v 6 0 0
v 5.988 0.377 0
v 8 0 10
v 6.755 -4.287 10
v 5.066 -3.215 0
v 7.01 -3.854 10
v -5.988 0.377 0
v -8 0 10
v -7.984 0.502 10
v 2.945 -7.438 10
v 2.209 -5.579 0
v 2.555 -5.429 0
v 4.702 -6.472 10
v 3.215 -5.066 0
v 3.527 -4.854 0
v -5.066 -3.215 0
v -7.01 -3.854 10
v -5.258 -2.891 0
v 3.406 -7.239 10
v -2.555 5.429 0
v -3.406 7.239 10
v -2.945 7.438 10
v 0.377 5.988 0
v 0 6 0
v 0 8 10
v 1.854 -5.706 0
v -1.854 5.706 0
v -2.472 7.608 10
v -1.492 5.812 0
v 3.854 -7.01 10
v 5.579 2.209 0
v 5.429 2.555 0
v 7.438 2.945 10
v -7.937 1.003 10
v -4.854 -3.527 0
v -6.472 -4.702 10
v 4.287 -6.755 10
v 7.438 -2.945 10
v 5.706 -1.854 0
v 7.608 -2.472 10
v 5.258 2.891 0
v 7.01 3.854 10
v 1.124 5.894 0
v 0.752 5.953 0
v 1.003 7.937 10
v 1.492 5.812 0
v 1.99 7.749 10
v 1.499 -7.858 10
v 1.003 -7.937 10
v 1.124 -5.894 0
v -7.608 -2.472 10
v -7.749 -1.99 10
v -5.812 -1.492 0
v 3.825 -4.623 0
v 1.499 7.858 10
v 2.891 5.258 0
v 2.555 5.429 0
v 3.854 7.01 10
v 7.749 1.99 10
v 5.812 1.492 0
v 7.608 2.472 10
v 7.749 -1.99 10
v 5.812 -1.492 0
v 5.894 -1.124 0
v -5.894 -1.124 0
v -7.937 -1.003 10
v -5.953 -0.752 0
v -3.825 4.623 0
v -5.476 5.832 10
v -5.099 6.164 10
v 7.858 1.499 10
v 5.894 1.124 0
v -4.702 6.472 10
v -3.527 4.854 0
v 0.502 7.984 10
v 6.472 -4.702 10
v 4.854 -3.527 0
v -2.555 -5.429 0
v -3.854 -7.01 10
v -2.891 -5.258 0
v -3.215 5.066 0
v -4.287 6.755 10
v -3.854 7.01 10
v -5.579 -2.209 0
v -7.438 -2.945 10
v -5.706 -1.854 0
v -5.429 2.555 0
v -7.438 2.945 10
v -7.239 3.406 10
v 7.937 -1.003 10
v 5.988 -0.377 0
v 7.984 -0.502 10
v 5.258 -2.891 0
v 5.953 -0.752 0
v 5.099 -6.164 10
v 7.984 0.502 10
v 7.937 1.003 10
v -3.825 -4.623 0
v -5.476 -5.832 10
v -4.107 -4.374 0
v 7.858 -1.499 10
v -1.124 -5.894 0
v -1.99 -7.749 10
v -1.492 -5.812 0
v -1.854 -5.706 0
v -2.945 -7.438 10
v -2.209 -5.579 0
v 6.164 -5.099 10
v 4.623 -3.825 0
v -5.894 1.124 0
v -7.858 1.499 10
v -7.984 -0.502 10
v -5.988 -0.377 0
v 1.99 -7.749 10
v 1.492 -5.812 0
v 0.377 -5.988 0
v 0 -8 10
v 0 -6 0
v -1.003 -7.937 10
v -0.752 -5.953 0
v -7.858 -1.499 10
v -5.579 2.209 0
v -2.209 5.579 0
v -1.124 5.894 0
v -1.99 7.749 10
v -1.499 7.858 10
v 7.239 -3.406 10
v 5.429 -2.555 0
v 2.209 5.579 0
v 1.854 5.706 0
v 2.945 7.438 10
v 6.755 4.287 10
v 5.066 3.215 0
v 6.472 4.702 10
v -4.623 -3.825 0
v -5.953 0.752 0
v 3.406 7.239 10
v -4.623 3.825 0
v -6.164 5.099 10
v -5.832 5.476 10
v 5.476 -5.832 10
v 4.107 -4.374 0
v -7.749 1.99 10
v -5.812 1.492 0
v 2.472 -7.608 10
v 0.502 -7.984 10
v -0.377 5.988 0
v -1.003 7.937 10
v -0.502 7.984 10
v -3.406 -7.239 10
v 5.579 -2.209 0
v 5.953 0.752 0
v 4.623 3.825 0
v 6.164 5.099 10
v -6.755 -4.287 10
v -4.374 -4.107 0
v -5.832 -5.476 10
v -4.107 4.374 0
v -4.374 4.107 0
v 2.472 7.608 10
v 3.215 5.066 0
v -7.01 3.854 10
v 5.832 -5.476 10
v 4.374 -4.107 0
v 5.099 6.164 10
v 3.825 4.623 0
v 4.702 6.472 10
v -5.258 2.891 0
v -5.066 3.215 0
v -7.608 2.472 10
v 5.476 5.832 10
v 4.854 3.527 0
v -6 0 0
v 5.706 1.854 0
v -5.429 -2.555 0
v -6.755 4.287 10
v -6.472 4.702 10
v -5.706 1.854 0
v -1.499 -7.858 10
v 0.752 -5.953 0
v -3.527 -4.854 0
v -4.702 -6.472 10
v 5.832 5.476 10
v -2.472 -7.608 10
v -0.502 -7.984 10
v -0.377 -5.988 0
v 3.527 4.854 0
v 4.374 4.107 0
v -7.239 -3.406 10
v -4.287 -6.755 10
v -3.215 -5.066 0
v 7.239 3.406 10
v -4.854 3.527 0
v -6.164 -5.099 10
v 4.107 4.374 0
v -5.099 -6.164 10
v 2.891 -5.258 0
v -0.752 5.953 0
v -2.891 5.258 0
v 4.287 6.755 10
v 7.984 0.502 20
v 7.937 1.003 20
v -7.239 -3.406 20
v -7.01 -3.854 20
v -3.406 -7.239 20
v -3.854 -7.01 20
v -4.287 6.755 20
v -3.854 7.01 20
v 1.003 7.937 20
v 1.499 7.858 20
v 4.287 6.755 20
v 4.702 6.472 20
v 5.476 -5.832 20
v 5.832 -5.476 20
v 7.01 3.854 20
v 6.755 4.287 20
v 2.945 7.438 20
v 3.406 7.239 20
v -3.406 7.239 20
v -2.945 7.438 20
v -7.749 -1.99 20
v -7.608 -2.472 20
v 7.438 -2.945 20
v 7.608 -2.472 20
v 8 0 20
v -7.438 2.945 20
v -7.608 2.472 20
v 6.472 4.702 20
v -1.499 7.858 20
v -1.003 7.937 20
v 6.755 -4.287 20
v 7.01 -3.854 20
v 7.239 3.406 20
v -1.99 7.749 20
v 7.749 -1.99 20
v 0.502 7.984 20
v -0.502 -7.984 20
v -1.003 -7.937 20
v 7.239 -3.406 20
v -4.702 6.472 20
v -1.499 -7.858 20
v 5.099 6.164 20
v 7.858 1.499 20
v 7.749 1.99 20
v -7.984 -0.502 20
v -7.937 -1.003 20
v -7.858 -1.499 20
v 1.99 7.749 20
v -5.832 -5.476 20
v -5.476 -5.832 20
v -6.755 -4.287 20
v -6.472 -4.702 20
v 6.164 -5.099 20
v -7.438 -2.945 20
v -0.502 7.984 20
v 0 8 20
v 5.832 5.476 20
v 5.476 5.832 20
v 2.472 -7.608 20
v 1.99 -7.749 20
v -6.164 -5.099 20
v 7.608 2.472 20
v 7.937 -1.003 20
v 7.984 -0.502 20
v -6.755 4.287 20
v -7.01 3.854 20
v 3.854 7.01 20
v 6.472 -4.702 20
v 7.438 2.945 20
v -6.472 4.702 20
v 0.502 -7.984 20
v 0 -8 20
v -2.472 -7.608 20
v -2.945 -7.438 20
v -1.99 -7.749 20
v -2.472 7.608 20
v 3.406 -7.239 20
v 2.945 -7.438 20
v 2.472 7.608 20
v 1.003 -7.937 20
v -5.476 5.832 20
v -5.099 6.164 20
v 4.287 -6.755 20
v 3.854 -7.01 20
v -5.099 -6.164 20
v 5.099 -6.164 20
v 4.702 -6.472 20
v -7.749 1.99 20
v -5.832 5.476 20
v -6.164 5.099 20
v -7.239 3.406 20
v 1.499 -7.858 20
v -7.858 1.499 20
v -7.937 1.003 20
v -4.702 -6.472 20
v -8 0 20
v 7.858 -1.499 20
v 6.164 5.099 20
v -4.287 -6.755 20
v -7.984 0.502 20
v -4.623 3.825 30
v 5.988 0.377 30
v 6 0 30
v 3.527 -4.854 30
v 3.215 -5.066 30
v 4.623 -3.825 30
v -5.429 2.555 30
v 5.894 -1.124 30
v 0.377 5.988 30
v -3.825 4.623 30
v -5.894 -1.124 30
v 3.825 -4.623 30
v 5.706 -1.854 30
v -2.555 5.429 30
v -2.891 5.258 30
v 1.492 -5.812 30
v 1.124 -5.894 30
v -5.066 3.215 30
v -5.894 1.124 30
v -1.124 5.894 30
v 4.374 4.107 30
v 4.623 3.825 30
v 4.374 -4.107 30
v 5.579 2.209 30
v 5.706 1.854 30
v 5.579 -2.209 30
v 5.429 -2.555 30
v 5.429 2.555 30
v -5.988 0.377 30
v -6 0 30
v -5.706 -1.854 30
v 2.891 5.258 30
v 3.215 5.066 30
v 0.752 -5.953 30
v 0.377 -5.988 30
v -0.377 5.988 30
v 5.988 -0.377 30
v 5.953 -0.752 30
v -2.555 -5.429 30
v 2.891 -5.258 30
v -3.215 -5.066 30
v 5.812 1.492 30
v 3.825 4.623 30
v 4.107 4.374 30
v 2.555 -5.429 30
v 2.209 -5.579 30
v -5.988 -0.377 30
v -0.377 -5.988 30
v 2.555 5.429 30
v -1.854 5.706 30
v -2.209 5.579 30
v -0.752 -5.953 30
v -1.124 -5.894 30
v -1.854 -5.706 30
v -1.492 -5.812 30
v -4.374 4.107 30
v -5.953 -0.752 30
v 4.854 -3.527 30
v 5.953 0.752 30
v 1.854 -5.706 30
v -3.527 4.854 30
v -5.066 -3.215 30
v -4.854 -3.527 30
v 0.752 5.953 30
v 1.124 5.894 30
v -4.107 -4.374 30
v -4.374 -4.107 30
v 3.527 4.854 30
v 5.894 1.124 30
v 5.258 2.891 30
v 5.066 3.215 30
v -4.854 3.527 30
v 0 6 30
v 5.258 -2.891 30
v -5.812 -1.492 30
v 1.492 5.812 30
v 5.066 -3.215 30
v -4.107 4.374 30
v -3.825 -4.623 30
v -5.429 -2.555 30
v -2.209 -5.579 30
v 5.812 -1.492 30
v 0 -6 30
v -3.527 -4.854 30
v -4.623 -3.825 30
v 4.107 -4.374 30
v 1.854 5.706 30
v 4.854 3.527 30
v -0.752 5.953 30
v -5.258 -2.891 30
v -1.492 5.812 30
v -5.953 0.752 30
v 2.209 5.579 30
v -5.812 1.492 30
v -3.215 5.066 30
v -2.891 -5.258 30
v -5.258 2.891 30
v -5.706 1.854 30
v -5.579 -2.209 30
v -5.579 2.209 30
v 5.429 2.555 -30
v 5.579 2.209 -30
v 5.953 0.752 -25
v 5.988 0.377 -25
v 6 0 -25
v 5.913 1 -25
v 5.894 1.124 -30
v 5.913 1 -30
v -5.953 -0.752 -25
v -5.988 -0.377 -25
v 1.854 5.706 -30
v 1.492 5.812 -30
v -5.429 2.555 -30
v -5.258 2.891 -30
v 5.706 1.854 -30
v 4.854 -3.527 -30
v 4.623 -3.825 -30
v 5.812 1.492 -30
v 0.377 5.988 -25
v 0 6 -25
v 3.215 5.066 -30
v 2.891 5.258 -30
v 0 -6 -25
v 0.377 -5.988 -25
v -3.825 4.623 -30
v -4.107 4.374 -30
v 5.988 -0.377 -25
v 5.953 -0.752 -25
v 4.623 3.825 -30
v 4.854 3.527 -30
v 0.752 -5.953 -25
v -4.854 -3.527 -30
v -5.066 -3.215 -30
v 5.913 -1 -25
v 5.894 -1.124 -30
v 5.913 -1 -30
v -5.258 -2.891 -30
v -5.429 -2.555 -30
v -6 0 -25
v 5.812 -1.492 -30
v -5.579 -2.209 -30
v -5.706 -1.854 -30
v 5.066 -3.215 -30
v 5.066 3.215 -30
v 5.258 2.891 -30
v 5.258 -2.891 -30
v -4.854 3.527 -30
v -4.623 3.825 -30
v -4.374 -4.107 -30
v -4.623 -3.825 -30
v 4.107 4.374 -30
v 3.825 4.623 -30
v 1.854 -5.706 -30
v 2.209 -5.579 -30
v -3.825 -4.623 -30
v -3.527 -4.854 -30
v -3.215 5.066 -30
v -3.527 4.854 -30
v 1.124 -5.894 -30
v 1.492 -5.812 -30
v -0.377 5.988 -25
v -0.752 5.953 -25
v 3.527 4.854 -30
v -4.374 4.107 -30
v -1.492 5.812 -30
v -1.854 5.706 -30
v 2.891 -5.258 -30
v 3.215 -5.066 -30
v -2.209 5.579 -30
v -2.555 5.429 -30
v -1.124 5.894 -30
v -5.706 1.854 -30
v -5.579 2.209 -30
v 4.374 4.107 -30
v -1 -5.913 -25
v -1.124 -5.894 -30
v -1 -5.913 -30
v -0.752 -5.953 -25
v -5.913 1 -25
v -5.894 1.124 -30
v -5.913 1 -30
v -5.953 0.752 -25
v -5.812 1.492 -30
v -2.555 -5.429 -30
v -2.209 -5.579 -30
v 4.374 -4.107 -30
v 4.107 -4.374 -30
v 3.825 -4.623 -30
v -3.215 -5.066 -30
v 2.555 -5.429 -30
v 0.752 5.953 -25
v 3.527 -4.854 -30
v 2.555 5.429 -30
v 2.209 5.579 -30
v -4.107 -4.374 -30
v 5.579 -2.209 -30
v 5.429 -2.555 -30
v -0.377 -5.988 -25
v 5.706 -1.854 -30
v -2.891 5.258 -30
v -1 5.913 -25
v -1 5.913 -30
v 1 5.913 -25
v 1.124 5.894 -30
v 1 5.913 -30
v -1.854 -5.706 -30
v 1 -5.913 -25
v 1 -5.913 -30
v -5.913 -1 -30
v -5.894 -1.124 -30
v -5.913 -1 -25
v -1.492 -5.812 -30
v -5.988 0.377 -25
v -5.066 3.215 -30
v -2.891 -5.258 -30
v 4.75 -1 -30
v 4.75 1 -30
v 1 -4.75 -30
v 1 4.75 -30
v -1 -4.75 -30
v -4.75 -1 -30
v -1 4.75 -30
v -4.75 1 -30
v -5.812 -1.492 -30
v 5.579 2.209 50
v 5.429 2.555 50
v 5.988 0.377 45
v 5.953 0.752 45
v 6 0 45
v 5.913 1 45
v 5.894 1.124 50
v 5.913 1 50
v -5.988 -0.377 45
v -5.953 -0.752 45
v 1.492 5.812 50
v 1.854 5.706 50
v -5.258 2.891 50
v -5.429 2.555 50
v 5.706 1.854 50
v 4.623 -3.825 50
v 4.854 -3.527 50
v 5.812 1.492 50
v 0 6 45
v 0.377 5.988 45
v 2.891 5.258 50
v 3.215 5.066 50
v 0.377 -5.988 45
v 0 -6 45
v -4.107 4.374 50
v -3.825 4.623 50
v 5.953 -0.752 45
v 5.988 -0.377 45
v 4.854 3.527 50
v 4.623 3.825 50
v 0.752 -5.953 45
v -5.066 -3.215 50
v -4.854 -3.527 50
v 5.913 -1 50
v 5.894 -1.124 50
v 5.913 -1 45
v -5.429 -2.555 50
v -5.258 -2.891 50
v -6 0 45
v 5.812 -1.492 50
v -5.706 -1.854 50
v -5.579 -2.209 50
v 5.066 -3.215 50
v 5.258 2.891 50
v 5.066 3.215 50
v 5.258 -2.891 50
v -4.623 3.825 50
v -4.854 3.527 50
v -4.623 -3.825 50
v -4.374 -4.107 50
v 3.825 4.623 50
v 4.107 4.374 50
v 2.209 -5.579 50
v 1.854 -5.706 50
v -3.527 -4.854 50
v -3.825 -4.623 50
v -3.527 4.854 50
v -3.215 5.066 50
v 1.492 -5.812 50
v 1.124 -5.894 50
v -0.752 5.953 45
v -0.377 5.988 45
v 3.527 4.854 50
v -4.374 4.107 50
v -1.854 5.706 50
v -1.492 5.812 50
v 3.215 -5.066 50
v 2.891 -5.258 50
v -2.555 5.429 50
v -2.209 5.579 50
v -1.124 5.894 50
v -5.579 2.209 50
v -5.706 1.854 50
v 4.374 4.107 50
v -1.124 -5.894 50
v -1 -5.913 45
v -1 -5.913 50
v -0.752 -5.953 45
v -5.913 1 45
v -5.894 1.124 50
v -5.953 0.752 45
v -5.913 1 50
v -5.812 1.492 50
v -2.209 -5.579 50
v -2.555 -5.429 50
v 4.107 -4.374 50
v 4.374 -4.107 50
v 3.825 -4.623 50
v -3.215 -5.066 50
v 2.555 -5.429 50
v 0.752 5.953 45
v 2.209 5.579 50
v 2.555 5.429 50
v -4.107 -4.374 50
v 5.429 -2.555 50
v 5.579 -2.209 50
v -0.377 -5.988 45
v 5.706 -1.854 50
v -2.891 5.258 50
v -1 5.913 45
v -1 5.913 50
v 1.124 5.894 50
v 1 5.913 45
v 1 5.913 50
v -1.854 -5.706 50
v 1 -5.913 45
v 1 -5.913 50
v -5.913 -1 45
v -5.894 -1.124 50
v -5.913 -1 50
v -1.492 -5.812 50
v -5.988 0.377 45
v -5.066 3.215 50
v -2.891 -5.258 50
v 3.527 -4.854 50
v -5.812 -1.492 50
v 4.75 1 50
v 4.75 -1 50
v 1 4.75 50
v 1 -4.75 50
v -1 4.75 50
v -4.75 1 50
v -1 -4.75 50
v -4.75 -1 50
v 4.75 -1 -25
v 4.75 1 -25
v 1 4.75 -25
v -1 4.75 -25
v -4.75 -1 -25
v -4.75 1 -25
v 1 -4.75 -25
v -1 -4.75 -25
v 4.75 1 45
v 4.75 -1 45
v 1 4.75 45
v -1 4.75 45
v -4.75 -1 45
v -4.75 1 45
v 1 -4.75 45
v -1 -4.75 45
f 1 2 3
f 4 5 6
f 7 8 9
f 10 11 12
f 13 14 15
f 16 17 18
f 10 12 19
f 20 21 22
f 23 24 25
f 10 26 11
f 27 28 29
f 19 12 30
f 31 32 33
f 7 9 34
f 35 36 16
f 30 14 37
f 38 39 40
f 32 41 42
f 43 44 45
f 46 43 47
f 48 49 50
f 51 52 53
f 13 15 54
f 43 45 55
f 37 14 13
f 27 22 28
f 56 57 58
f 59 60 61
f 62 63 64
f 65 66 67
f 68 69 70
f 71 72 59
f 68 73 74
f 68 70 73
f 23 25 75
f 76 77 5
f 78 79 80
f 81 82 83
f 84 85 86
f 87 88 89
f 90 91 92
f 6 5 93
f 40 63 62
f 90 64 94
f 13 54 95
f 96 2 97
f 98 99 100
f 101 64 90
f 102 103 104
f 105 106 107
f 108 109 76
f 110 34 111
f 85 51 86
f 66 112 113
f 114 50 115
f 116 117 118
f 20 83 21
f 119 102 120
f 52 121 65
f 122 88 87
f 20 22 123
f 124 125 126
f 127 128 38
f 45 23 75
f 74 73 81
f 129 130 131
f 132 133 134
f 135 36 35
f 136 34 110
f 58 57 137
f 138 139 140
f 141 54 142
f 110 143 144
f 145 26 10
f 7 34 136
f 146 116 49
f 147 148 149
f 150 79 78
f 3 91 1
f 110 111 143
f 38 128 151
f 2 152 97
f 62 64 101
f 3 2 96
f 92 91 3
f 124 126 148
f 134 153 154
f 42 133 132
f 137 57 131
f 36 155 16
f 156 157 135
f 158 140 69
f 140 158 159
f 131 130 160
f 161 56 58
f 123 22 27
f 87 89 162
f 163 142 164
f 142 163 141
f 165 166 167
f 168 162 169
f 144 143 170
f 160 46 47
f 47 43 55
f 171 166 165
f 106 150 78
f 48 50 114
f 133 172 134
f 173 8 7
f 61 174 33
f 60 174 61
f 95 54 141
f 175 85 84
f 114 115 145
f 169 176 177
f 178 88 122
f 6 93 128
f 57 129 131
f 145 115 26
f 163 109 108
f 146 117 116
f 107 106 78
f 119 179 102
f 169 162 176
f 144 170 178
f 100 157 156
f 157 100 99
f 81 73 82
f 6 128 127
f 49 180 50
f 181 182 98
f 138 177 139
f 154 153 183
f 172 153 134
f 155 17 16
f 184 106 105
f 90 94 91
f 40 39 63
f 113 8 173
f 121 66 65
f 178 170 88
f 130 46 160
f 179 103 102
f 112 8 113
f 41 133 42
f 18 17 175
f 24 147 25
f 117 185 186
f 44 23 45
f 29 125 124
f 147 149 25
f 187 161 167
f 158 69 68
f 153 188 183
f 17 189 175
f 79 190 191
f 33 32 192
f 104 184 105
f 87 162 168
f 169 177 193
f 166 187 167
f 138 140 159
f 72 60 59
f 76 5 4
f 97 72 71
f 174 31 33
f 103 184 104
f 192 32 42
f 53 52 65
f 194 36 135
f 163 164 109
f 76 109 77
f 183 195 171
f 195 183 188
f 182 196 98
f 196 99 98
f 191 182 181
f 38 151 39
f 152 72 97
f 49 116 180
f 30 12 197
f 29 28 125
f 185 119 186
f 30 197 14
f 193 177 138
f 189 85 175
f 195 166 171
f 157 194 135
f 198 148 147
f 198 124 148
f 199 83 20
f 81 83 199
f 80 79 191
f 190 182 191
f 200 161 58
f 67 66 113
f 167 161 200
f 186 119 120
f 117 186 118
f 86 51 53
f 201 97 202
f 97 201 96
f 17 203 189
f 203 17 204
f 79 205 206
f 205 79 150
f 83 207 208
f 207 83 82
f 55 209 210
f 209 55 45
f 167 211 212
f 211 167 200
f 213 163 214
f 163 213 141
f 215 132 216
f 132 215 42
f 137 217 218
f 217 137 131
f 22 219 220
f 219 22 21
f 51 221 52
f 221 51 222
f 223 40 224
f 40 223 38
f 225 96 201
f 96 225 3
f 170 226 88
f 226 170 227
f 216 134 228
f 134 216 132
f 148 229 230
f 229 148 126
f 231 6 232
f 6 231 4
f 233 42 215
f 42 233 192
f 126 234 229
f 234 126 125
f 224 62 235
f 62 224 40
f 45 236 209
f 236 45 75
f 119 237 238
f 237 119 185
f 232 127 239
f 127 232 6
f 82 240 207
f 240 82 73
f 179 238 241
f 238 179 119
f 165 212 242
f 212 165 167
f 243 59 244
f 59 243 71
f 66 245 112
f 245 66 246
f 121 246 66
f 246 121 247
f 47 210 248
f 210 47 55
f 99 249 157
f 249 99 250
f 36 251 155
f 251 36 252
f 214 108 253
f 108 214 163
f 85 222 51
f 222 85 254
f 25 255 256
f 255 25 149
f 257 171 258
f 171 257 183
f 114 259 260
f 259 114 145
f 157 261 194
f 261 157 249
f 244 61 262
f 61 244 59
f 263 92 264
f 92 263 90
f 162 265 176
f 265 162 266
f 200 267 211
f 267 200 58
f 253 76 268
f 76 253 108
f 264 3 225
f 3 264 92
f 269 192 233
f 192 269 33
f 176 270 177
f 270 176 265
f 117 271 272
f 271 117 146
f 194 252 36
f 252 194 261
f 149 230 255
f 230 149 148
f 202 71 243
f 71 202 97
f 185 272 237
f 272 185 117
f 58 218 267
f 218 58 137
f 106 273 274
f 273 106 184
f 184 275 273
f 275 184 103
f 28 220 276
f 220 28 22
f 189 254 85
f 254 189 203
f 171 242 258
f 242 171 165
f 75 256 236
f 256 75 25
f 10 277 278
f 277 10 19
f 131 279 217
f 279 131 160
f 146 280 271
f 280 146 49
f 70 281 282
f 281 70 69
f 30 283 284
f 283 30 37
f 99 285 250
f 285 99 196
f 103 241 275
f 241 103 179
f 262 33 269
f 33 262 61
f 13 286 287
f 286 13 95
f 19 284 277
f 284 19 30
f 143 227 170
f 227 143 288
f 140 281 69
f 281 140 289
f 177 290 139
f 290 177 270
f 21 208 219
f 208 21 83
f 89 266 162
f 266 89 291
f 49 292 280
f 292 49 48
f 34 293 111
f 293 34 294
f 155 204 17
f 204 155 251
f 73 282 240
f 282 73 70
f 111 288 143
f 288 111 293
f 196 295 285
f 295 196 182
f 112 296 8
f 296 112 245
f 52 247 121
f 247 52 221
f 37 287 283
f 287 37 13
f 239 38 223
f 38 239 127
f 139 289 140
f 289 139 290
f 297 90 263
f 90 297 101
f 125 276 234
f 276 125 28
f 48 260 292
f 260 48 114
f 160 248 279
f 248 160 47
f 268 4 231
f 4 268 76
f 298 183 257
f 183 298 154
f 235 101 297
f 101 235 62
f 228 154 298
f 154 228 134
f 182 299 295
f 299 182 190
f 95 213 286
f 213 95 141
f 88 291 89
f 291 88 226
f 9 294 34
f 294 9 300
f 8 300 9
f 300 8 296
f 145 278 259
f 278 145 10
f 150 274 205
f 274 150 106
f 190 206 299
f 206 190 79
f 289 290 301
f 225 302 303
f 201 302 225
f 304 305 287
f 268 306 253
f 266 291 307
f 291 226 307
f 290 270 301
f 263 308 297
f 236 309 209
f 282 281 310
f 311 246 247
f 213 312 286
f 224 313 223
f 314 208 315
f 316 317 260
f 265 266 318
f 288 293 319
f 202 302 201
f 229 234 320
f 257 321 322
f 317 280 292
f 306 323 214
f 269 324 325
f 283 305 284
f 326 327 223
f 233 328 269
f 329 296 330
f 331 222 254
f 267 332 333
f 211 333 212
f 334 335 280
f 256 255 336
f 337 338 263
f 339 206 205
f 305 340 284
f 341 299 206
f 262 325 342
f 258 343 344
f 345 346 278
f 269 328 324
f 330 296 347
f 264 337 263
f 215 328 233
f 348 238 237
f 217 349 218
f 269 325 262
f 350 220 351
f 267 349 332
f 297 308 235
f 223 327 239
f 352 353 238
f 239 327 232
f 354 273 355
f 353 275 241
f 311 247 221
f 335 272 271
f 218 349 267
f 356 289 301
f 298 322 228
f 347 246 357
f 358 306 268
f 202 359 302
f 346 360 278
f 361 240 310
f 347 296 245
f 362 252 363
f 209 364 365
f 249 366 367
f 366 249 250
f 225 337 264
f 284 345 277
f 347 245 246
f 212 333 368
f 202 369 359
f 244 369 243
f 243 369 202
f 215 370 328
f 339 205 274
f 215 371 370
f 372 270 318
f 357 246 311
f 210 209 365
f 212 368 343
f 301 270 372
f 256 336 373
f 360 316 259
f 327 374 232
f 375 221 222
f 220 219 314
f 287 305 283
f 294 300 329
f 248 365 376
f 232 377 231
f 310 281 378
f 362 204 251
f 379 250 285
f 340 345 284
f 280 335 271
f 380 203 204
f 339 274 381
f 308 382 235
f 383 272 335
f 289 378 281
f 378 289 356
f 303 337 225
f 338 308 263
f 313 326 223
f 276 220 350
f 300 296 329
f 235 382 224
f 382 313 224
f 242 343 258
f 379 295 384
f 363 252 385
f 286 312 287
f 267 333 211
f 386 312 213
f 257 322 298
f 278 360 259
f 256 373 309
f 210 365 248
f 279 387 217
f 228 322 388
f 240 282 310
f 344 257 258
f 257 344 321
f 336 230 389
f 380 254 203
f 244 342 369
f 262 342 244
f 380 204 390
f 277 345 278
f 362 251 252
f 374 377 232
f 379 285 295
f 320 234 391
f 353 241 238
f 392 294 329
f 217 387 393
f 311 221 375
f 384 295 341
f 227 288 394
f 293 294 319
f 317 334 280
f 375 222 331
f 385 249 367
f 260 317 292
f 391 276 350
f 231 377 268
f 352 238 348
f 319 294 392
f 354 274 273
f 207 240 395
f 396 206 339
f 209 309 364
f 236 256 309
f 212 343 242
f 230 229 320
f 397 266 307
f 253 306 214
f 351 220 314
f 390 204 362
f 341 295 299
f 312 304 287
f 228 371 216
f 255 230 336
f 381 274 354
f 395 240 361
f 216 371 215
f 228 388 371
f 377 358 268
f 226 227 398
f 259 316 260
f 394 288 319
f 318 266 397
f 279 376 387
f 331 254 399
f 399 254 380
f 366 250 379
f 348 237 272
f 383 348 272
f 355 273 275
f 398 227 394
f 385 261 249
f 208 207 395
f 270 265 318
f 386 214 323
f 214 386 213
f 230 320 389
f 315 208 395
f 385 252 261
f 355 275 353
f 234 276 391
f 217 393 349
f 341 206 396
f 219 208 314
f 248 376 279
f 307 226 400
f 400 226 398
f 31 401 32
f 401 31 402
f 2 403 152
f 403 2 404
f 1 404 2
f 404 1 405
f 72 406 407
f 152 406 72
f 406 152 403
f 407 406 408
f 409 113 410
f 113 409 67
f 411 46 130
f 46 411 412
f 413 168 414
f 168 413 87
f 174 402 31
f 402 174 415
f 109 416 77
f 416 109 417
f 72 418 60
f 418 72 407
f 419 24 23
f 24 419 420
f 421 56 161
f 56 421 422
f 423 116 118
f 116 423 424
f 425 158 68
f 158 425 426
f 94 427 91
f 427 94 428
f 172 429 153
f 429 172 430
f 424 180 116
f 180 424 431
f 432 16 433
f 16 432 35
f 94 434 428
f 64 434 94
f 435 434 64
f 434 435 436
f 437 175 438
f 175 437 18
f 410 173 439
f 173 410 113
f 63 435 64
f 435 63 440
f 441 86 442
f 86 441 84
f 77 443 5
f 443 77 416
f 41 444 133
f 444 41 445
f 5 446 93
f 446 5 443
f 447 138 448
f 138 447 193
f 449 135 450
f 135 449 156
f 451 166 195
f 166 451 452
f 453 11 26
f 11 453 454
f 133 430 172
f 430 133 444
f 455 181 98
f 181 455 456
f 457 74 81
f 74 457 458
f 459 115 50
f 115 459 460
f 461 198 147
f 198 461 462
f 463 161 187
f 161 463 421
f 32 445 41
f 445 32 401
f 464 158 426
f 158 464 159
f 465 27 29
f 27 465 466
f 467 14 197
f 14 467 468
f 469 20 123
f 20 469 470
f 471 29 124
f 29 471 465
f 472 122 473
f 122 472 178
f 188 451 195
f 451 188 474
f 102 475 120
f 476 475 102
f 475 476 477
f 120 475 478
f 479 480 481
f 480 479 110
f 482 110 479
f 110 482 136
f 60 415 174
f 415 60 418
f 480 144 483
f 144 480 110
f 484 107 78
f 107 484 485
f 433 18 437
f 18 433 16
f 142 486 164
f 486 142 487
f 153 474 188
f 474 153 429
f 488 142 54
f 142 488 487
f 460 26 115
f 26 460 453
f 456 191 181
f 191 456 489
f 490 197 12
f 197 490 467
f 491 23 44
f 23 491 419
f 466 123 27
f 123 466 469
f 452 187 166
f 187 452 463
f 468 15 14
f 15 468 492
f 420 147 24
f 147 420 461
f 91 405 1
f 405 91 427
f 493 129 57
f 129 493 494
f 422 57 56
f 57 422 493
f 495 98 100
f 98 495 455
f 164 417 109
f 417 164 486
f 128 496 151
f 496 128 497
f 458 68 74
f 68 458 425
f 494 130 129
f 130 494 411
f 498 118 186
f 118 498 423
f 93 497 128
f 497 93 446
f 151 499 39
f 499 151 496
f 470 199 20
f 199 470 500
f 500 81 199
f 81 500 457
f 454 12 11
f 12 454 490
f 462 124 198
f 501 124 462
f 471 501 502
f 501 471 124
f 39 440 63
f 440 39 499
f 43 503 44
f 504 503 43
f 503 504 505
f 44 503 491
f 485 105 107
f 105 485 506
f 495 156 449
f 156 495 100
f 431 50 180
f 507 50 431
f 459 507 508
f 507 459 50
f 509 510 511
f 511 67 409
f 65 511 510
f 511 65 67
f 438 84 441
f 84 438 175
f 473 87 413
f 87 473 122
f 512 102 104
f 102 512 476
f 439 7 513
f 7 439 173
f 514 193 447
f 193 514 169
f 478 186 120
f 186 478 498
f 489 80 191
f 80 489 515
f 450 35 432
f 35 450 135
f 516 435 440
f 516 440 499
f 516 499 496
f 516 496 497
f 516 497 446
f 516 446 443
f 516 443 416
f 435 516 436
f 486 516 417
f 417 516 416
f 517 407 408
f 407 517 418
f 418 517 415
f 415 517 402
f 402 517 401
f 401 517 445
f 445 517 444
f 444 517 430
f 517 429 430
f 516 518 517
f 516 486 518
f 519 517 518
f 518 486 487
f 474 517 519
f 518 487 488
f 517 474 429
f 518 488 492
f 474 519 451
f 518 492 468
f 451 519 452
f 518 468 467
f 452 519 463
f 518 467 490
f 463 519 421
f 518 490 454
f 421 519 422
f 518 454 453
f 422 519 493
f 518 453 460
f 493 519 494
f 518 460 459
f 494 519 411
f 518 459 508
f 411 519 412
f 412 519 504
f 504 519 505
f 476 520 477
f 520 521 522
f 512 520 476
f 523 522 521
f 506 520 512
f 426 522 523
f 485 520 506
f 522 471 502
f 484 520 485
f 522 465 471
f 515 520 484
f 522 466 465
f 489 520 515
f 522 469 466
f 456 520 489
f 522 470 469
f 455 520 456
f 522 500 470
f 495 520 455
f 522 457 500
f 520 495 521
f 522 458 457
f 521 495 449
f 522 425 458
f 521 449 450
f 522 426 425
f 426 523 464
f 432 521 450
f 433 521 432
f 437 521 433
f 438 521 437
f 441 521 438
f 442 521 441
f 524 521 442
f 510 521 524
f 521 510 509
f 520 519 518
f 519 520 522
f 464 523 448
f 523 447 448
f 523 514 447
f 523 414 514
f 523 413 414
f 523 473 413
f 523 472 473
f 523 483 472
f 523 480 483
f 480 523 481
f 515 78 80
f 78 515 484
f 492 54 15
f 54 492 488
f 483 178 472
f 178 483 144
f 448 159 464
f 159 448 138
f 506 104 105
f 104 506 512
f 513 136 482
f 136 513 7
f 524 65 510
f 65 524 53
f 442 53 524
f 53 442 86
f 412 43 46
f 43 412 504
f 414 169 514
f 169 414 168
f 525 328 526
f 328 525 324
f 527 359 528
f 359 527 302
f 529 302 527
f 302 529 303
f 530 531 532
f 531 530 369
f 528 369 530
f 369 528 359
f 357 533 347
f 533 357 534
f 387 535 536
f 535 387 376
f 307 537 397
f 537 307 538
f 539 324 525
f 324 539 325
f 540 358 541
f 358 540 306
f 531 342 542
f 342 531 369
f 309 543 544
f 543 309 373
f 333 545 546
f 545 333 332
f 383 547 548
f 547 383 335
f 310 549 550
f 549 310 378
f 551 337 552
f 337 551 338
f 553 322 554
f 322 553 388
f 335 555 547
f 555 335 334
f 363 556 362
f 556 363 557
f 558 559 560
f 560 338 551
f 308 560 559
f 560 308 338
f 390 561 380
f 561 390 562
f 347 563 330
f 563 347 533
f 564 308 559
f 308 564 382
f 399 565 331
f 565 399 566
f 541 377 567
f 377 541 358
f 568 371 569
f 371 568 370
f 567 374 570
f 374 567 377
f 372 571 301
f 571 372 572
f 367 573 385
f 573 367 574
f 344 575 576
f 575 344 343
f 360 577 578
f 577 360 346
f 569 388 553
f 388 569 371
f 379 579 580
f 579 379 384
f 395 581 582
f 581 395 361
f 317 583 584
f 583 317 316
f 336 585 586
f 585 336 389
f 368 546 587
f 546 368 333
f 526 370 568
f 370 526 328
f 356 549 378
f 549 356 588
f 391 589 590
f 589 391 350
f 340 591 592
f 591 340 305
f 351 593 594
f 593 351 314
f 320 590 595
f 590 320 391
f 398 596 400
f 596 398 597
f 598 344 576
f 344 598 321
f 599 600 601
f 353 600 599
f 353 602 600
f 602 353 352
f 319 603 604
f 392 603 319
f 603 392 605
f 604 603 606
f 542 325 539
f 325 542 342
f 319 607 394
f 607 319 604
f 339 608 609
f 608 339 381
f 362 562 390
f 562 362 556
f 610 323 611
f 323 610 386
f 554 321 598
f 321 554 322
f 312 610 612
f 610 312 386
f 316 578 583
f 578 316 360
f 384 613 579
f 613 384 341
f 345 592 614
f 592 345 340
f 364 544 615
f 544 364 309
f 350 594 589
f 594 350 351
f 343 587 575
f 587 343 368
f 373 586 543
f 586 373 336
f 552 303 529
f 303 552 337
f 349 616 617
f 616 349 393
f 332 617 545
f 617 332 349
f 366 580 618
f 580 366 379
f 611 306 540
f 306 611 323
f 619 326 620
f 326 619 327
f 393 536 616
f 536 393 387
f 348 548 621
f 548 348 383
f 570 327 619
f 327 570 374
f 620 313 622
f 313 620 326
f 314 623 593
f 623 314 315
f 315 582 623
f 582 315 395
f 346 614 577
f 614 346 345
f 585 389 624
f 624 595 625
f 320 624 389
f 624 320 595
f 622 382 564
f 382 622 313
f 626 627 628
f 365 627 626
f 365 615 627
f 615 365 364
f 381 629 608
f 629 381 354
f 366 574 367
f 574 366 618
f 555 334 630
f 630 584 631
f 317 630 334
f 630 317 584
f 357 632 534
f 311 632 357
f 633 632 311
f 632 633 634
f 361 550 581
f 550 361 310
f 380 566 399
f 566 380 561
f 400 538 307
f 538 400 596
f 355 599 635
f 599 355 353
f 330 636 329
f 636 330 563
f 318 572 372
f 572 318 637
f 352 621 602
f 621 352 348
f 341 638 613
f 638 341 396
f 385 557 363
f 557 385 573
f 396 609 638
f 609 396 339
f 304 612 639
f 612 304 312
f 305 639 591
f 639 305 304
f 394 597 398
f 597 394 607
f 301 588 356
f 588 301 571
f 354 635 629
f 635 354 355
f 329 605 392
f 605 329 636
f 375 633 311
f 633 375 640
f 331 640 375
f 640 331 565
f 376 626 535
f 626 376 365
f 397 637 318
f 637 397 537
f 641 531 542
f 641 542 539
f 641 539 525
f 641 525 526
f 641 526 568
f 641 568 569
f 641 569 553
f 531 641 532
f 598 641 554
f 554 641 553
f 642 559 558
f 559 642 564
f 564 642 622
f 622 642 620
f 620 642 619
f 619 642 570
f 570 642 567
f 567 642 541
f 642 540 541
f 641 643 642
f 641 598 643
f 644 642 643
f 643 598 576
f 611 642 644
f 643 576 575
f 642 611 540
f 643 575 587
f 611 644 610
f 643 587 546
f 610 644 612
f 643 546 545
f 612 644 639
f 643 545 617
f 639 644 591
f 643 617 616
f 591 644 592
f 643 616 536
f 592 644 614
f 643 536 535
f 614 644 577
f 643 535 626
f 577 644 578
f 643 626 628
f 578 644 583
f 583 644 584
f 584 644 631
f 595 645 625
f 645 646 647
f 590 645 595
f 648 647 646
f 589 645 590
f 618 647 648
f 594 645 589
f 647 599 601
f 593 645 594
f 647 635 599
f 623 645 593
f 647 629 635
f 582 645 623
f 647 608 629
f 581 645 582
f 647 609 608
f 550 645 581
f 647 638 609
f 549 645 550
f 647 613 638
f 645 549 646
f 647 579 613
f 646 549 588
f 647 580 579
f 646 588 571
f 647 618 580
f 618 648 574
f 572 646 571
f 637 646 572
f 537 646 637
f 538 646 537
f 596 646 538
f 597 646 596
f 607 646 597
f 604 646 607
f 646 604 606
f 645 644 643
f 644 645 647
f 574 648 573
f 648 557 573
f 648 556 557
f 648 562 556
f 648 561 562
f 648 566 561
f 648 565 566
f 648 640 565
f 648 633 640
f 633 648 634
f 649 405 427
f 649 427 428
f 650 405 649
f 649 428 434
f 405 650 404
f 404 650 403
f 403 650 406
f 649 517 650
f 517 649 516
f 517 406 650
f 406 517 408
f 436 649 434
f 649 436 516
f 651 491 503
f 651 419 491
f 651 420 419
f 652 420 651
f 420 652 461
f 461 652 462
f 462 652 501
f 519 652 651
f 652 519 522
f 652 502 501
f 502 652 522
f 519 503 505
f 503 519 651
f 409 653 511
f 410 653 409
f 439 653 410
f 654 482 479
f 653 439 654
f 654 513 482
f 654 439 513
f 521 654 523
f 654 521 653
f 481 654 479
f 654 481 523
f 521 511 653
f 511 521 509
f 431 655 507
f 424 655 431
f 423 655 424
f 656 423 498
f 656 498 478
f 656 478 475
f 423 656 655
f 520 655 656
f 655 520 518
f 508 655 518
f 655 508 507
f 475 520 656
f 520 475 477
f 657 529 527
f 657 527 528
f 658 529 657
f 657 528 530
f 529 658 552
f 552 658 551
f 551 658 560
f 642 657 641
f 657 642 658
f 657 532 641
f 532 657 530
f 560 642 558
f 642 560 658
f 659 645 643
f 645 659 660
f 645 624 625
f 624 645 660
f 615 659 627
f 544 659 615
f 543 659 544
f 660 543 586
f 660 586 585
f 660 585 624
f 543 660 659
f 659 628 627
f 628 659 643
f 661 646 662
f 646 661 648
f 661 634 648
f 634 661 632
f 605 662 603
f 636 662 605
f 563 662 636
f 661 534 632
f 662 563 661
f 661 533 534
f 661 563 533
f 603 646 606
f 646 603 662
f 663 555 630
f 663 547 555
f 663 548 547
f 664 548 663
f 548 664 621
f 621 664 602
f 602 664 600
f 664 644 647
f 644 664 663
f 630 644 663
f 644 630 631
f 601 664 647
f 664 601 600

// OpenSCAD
$fn = 100; // Smoothness

module shaft_body() {
    difference() {
        union() {
            // Central wider section
            cylinder(h = 10, r1 = 6, r2 = 8, center = false);
            translate([0, 0, 10])
                cylinder(h = 10, r = 8, center = false);
            translate([0, 0, 20])
                cylinder(h = 10, r1 = 8, r2 = 6, center = false);

            // Left section
            translate([0, 0, -30])
                cylinder(h = 10, r = 6, center = false);
            translate([0, 0, -20])
                cylinder(h = 10, r1 = 6, r2 = 6, center = false);
            translate([0, 0, -10])
                cylinder(h = 10, r1 = 6, r2 = 6, center = false);

            // Right section
            translate([0, 0, 30])
                cylinder(h = 10, r = 6, center = false);
            translate([0, 0, 40])
                cylinder(h = 10, r1 = 6, r2 = 6, center = false);
        }

        // Through-holes near both ends
        for (z = [-25, 45]) {
            rotate([90, 0, 0])
                translate([z, 0, 0])
                    cylinder(h = 12, r = 1.2, center = true);
        }

        // Symmetric recessed keying slots on both ends
        for (z = [-28, 48]) {
            for (angle = [0, 90, 180, 270]) {
                rotate([0, 0, angle])
                    translate([5.5, 0, z])
                        cube([1.5, 2, 6], center = true);
            }
        }
    }
}

shaft_body();
